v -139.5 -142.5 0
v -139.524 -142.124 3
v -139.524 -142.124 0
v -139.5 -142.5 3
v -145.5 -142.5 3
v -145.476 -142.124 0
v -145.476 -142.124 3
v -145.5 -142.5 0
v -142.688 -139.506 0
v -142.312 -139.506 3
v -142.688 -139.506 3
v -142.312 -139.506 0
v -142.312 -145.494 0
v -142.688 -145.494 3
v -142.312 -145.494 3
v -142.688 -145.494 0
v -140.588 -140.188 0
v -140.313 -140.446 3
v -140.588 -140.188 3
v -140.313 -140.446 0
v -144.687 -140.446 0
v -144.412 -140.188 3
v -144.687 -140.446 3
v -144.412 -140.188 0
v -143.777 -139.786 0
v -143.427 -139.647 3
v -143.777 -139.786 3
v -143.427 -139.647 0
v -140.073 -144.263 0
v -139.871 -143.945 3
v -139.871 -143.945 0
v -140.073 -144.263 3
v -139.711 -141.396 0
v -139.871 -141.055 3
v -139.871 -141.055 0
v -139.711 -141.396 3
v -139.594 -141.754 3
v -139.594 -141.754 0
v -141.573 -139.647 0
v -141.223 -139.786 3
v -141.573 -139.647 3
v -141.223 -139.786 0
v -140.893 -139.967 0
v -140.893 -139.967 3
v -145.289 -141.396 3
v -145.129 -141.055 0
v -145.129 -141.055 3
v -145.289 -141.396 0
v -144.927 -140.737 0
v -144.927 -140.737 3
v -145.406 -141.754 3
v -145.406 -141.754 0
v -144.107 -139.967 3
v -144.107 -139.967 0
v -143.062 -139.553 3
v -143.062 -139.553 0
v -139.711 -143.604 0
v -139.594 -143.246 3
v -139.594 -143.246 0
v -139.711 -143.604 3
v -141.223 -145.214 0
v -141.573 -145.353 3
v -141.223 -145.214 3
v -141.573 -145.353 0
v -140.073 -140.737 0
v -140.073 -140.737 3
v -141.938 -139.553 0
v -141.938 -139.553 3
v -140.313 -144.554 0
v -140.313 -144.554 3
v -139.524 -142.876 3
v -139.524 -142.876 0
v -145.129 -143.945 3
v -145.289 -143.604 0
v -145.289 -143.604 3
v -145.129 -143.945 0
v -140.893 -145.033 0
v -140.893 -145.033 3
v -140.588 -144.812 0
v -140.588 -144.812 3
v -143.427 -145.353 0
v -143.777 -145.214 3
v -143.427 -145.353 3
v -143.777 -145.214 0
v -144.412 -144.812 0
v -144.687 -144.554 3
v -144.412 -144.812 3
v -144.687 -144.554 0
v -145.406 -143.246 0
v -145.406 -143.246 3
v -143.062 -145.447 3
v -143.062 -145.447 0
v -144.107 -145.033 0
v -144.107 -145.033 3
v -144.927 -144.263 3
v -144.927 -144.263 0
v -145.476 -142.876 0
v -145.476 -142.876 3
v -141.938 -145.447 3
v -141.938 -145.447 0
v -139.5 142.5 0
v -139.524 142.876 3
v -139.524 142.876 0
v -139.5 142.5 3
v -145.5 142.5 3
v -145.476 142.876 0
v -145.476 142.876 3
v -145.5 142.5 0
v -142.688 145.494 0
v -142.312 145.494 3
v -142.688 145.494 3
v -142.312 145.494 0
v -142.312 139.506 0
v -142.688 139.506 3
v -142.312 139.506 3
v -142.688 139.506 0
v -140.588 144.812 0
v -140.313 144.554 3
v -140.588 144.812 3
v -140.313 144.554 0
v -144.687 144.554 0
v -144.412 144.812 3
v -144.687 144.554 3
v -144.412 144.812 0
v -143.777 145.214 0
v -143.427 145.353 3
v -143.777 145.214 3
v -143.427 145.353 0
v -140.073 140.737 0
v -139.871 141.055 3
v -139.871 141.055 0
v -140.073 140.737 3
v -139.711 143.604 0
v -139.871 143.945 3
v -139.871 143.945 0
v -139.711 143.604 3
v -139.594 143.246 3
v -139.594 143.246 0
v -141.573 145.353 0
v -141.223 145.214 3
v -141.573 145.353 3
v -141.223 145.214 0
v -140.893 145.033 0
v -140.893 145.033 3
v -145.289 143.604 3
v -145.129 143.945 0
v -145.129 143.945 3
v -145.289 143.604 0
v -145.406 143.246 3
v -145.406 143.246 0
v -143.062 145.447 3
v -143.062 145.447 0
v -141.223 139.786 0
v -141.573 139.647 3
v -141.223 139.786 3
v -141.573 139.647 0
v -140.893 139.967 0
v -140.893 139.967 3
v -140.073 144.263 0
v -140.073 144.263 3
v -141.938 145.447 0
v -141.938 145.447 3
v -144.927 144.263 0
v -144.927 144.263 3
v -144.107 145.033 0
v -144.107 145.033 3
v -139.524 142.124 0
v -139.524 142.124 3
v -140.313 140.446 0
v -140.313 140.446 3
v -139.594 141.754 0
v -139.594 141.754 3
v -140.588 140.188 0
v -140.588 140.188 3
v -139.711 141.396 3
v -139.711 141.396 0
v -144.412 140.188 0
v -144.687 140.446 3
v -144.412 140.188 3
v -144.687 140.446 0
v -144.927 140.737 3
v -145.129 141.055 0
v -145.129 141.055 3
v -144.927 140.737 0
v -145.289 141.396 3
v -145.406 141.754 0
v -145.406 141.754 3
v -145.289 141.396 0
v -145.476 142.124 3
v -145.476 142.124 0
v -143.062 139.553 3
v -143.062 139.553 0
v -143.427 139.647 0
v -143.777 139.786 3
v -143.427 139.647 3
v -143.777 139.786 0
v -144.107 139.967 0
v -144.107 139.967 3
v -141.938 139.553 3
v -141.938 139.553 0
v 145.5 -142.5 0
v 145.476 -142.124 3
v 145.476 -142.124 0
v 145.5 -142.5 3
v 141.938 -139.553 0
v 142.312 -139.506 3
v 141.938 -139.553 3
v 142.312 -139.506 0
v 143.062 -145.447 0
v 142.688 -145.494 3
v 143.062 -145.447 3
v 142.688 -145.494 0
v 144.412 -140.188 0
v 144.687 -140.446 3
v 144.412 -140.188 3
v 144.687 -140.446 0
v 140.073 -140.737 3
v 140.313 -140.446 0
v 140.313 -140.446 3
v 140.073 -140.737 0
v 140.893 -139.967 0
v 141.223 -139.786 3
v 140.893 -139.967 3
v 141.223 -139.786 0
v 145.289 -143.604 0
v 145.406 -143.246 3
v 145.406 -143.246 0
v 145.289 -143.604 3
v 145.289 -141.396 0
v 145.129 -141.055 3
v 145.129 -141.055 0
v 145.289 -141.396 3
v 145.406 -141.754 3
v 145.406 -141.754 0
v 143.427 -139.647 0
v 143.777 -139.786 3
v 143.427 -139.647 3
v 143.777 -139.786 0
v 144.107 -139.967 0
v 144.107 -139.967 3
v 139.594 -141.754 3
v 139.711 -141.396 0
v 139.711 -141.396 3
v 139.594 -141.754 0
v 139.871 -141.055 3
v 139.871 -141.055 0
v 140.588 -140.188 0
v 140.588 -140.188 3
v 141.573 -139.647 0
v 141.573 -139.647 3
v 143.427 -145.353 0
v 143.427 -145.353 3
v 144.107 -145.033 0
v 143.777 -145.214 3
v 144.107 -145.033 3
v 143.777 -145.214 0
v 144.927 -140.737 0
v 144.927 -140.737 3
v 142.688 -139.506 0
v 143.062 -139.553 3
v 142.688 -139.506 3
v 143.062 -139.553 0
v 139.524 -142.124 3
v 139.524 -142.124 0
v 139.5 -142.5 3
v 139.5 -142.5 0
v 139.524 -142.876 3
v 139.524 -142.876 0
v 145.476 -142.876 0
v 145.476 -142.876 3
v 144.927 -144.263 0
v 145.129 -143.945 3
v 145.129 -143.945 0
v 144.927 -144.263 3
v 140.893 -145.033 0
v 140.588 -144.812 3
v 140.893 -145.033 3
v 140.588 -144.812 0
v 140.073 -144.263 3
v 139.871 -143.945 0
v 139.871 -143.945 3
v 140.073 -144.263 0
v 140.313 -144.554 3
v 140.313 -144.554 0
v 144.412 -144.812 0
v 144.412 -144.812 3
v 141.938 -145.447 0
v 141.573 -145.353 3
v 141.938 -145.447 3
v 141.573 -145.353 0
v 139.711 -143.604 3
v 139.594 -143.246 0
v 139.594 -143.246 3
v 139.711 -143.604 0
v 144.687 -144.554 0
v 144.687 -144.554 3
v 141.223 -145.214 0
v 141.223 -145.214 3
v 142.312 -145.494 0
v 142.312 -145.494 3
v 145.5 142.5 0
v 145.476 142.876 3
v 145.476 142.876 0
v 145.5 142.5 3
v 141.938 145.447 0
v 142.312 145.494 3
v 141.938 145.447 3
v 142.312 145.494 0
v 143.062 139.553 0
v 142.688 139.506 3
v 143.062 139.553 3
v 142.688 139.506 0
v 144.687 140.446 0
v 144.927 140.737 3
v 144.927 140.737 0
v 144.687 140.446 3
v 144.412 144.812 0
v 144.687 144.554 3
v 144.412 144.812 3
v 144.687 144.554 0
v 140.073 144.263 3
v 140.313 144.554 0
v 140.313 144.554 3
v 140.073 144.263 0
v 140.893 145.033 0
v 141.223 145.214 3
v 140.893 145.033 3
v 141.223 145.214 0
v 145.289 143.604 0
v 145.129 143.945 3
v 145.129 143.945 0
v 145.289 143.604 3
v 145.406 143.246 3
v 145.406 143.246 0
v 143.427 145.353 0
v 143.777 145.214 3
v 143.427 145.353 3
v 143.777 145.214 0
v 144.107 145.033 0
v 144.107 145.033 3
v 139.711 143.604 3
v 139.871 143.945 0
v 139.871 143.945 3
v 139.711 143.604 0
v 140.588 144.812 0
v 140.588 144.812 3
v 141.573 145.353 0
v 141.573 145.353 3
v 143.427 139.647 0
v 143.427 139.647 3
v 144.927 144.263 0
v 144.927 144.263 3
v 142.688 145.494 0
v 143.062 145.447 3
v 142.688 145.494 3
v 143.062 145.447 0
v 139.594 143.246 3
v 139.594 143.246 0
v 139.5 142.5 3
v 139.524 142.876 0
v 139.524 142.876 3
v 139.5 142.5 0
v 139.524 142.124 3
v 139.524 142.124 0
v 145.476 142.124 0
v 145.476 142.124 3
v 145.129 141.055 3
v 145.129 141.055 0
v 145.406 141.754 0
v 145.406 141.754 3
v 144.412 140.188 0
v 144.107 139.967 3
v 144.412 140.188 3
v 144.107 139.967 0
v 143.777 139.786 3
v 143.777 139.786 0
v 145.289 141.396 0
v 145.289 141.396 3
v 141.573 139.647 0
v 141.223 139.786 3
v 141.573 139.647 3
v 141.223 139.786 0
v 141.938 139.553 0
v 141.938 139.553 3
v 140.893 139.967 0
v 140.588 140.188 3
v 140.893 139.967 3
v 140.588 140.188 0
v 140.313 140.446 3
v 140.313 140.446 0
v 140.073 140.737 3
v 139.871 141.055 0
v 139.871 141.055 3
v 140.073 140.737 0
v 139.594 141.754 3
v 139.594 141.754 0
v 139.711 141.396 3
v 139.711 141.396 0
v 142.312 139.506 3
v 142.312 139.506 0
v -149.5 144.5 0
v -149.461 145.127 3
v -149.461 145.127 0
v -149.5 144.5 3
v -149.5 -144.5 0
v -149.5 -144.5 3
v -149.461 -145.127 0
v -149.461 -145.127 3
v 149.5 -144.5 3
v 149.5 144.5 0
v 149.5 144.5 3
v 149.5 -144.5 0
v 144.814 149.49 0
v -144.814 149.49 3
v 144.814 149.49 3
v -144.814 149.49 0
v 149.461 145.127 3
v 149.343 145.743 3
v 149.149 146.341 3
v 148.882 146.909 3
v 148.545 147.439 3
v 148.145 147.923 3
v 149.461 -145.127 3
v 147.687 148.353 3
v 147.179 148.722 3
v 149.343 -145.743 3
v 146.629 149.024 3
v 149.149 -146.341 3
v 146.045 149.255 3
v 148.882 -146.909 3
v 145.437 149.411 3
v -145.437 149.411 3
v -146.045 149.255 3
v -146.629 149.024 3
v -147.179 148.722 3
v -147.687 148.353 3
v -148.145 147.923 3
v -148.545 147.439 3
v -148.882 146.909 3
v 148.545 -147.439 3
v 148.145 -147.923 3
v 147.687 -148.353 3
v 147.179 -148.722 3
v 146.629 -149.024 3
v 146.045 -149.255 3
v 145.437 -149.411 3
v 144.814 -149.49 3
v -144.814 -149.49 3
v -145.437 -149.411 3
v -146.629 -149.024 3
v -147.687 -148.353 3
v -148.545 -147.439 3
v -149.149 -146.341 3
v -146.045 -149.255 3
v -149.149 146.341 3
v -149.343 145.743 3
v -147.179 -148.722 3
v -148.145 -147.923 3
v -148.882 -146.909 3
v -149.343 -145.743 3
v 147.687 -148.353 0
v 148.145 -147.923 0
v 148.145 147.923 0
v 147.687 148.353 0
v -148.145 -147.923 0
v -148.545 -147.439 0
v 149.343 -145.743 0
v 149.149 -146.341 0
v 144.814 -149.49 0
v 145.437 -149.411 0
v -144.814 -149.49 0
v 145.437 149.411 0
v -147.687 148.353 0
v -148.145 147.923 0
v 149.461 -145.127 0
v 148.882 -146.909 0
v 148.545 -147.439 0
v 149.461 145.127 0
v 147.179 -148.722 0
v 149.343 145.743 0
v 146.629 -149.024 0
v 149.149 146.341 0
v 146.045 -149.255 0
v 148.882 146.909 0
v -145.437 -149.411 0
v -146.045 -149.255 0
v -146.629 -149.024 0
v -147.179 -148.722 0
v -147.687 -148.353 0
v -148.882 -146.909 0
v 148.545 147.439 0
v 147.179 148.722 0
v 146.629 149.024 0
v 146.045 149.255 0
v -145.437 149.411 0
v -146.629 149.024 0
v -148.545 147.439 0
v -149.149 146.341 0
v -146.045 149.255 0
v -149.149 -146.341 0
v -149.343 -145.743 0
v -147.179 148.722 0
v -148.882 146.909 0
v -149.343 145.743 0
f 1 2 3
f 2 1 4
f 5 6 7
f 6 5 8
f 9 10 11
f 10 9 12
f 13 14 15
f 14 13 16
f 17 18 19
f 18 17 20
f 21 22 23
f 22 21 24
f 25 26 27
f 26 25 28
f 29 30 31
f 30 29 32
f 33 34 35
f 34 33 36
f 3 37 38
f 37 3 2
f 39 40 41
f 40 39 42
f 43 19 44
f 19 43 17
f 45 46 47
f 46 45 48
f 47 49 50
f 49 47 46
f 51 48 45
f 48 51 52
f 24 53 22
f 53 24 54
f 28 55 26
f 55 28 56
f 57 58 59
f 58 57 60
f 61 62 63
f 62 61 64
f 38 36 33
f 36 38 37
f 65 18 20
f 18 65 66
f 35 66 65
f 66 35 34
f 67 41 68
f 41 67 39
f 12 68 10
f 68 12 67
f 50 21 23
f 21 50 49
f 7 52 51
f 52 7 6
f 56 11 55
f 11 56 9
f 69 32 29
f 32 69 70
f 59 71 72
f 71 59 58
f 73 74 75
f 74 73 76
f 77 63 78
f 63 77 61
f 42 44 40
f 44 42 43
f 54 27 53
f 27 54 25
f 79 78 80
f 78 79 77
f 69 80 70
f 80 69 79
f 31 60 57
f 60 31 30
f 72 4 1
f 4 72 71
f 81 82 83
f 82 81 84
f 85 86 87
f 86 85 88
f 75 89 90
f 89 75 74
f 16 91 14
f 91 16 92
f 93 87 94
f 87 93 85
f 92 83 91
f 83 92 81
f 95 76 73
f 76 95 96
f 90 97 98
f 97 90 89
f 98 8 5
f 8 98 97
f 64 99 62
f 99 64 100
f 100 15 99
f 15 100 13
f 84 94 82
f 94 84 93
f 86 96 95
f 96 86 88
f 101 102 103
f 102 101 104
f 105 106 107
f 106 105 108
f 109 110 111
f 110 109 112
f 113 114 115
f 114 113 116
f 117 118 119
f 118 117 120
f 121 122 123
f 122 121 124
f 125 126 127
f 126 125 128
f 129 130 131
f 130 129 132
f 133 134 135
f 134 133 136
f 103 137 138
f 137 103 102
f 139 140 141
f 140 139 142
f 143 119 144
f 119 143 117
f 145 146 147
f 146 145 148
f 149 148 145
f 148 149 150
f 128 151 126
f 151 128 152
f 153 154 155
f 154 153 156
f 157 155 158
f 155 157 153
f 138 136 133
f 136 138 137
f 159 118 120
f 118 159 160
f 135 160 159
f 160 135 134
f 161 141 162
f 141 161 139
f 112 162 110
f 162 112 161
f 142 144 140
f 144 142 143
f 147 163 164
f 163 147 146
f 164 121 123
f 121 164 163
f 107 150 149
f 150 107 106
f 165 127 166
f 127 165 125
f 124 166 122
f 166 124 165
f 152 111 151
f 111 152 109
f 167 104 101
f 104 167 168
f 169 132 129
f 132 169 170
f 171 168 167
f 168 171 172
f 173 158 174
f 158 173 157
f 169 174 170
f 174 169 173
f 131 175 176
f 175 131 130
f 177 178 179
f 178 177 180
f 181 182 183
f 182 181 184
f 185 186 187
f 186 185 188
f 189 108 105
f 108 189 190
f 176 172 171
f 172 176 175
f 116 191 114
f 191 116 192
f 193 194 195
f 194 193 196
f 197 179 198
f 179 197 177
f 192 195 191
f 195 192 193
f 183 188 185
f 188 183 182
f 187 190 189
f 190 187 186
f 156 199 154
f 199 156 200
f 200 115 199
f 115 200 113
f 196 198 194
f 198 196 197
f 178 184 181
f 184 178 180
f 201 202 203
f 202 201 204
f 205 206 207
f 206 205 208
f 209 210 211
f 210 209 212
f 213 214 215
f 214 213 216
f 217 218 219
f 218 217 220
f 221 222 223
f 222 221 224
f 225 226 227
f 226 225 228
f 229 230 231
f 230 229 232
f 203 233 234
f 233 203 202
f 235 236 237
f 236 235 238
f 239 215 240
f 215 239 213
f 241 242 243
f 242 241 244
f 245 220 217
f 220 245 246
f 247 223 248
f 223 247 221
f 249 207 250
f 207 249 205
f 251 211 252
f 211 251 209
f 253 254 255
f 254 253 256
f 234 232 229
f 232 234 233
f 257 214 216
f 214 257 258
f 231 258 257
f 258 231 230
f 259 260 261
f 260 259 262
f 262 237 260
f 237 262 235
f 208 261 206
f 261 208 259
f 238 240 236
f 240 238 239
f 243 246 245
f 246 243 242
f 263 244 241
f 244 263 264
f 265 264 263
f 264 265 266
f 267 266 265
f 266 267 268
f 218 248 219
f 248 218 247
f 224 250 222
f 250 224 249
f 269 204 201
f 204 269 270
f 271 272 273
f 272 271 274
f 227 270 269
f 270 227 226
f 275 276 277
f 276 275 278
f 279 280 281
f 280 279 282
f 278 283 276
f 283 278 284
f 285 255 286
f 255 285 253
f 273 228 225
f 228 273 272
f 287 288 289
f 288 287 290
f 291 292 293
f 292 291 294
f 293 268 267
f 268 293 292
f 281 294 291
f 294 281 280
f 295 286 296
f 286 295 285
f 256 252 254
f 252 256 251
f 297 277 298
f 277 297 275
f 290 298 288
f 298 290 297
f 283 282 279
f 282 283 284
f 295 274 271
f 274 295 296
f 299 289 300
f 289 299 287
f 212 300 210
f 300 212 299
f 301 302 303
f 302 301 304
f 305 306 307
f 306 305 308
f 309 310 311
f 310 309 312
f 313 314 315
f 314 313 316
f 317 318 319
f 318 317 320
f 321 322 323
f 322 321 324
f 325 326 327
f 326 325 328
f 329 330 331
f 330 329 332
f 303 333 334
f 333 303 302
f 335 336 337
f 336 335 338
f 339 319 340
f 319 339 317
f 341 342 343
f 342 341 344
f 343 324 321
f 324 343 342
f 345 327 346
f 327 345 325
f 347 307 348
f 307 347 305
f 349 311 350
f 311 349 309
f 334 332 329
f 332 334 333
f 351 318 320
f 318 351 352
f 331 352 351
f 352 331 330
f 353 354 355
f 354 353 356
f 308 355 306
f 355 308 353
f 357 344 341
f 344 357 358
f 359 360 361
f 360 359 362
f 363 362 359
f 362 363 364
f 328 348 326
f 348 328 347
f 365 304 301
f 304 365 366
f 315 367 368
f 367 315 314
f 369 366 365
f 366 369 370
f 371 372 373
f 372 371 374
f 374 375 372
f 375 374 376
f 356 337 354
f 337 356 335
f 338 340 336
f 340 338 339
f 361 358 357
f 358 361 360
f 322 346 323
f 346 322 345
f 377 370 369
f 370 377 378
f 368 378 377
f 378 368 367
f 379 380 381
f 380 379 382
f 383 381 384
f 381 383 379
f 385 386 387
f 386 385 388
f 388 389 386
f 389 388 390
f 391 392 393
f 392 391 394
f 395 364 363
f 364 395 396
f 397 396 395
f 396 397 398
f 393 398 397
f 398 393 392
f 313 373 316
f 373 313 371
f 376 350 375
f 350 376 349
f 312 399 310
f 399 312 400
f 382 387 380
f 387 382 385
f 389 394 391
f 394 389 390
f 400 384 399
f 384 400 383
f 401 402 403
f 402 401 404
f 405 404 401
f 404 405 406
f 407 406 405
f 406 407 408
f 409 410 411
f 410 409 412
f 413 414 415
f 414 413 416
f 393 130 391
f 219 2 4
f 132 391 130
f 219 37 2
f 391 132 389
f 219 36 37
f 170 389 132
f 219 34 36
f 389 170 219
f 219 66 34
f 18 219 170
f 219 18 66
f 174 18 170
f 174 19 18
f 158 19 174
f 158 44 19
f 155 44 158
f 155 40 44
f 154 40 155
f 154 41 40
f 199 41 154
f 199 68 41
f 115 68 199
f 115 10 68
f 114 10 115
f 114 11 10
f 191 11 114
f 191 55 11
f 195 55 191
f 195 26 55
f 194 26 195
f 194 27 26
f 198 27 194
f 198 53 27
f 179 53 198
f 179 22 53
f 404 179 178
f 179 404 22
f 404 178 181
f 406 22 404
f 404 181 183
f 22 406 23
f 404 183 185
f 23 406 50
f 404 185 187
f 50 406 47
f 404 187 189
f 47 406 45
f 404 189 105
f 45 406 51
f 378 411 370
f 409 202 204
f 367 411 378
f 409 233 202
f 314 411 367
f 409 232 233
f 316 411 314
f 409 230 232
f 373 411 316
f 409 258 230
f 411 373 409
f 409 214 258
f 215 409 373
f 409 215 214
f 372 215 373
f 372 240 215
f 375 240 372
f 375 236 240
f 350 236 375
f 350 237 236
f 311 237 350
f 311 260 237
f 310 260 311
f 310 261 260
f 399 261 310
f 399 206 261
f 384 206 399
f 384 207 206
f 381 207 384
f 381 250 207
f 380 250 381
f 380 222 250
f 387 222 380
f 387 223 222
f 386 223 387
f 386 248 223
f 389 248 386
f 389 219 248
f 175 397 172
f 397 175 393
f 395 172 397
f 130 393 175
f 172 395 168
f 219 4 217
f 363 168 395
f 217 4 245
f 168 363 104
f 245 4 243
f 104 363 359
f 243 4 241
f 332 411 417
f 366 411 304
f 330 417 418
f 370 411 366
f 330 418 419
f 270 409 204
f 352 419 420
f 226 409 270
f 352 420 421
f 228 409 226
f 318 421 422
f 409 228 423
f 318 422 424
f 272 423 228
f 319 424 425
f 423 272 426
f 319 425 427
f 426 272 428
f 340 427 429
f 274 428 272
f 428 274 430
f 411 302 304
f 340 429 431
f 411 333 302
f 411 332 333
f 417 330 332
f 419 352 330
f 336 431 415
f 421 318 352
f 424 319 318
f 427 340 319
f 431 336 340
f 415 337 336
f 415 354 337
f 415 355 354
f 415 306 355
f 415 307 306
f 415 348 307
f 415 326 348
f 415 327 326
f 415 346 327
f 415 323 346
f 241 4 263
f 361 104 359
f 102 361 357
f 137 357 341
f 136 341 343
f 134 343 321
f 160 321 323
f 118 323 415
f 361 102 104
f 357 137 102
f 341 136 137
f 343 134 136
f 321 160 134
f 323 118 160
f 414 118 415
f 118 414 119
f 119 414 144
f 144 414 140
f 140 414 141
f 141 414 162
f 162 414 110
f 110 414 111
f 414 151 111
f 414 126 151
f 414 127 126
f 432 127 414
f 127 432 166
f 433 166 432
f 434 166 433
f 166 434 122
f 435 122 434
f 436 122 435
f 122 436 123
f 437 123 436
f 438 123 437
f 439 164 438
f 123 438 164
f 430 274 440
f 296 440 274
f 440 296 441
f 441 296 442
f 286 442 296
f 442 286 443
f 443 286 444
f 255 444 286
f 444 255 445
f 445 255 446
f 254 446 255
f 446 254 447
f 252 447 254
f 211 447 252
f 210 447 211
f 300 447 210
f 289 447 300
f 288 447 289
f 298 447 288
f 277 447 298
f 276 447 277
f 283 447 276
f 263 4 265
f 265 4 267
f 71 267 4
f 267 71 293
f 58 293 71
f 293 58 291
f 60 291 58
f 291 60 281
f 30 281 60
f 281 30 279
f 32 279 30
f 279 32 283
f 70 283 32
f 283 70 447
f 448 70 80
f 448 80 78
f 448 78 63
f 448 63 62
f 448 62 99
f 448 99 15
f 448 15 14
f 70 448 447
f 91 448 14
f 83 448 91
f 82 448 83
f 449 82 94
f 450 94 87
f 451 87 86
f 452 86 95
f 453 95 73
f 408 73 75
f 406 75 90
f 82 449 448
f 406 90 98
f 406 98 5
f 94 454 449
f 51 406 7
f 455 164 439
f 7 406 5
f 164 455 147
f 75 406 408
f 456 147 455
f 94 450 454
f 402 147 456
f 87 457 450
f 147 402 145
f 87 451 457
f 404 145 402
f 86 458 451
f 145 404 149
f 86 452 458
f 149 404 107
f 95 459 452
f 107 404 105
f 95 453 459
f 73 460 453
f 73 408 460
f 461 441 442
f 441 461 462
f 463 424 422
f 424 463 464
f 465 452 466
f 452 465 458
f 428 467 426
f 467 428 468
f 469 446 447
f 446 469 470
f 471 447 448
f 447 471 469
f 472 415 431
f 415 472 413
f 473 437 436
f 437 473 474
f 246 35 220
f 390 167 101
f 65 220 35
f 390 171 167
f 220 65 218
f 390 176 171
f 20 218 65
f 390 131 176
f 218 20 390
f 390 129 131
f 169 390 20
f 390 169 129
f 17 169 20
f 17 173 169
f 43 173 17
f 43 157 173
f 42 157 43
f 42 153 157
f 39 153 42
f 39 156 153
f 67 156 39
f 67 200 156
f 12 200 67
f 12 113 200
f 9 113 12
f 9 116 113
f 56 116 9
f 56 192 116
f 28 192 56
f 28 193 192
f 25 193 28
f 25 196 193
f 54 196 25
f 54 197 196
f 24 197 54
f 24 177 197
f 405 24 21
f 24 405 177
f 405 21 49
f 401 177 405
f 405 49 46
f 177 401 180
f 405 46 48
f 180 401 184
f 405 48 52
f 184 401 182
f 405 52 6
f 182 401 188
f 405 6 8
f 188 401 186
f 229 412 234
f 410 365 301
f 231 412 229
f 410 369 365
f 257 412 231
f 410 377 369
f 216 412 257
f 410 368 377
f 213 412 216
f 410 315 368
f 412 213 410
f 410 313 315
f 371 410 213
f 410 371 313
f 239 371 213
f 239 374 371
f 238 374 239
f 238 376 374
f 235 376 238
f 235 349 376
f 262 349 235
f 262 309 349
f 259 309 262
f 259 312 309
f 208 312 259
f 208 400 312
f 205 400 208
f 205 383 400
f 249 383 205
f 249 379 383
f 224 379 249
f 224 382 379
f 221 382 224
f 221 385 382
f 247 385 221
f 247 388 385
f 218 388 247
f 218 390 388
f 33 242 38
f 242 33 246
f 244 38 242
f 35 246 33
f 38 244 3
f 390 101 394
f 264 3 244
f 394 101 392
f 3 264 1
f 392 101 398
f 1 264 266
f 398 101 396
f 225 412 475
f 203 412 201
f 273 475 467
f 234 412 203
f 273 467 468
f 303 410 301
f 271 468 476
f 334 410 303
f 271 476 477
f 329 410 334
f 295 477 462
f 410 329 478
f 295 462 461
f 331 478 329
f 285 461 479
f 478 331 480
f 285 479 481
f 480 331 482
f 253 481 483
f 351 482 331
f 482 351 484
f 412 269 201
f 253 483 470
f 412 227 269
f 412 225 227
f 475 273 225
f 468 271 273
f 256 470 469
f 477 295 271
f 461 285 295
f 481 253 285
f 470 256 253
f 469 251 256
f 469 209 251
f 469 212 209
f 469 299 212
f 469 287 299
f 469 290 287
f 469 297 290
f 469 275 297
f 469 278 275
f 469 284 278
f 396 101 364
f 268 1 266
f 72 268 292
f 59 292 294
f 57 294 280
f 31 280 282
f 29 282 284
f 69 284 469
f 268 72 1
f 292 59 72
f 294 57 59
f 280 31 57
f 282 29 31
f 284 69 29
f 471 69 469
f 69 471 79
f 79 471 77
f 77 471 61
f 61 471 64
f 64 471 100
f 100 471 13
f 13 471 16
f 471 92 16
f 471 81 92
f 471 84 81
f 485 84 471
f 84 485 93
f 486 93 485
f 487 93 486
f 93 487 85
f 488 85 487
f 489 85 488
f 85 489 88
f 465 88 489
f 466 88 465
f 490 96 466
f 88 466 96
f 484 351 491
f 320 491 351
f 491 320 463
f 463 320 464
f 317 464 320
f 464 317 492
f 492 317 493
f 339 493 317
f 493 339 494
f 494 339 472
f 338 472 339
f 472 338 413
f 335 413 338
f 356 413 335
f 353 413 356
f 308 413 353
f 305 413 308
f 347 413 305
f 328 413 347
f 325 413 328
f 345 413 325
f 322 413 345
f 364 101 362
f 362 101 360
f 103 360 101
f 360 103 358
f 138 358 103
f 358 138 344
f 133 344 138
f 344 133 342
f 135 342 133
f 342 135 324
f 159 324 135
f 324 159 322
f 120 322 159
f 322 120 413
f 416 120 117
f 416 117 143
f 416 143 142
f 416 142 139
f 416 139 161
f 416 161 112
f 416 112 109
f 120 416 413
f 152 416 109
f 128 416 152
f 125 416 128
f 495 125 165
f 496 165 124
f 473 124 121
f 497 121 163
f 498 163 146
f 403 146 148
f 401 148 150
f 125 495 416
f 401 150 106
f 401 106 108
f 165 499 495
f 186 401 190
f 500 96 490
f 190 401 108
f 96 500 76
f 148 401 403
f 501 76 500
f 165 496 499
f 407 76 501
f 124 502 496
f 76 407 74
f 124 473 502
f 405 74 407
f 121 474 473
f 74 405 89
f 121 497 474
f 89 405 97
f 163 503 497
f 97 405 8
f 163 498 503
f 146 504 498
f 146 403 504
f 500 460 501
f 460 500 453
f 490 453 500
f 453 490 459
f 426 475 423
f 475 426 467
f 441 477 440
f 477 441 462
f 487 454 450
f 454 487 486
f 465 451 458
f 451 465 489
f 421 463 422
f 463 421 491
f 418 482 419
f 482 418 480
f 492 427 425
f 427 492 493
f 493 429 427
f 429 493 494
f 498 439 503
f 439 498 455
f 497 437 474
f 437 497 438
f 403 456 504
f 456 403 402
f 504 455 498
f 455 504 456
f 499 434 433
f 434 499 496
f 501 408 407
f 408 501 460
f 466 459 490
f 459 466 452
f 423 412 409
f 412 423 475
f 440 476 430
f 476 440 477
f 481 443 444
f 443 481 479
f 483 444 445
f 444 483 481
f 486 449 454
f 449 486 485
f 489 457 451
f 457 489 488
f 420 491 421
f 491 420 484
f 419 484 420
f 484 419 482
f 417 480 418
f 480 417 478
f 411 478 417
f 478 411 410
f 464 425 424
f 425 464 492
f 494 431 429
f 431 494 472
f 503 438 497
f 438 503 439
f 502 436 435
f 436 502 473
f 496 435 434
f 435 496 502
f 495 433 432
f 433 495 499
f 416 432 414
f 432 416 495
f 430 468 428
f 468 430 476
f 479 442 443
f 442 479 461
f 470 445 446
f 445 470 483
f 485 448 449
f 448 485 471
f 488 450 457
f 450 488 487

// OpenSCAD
$fn = 50;


difference() {
	union() {
		hull() {
			translate(v = [-144.5000000000, 144.5000000000, 0]) {
				cylinder(h = 3, r = 5);
			}
			translate(v = [144.5000000000, 144.5000000000, 0]) {
				cylinder(h = 3, r = 5);
			}
			translate(v = [-144.5000000000, -144.5000000000, 0]) {
				cylinder(h = 3, r = 5);
			}
			translate(v = [144.5000000000, -144.5000000000, 0]) {
				cylinder(h = 3, r = 5);
			}
		}
	}
	union() {
		translate(v = [-142.5000000000, -142.5000000000, -100.0000000000]) {
			cylinder(h = 200, r = 3.0000000000);
		}
		translate(v = [-142.5000000000, 142.5000000000, -100.0000000000]) {
			cylinder(h = 200, r = 3.0000000000);
		}
		translate(v = [142.5000000000, -142.5000000000, -100.0000000000]) {
			cylinder(h = 200, r = 3.0000000000);
		}
		translate(v = [142.5000000000, 142.5000000000, -100.0000000000]) {
			cylinder(h = 200, r = 3.0000000000);
		}
	}
}
